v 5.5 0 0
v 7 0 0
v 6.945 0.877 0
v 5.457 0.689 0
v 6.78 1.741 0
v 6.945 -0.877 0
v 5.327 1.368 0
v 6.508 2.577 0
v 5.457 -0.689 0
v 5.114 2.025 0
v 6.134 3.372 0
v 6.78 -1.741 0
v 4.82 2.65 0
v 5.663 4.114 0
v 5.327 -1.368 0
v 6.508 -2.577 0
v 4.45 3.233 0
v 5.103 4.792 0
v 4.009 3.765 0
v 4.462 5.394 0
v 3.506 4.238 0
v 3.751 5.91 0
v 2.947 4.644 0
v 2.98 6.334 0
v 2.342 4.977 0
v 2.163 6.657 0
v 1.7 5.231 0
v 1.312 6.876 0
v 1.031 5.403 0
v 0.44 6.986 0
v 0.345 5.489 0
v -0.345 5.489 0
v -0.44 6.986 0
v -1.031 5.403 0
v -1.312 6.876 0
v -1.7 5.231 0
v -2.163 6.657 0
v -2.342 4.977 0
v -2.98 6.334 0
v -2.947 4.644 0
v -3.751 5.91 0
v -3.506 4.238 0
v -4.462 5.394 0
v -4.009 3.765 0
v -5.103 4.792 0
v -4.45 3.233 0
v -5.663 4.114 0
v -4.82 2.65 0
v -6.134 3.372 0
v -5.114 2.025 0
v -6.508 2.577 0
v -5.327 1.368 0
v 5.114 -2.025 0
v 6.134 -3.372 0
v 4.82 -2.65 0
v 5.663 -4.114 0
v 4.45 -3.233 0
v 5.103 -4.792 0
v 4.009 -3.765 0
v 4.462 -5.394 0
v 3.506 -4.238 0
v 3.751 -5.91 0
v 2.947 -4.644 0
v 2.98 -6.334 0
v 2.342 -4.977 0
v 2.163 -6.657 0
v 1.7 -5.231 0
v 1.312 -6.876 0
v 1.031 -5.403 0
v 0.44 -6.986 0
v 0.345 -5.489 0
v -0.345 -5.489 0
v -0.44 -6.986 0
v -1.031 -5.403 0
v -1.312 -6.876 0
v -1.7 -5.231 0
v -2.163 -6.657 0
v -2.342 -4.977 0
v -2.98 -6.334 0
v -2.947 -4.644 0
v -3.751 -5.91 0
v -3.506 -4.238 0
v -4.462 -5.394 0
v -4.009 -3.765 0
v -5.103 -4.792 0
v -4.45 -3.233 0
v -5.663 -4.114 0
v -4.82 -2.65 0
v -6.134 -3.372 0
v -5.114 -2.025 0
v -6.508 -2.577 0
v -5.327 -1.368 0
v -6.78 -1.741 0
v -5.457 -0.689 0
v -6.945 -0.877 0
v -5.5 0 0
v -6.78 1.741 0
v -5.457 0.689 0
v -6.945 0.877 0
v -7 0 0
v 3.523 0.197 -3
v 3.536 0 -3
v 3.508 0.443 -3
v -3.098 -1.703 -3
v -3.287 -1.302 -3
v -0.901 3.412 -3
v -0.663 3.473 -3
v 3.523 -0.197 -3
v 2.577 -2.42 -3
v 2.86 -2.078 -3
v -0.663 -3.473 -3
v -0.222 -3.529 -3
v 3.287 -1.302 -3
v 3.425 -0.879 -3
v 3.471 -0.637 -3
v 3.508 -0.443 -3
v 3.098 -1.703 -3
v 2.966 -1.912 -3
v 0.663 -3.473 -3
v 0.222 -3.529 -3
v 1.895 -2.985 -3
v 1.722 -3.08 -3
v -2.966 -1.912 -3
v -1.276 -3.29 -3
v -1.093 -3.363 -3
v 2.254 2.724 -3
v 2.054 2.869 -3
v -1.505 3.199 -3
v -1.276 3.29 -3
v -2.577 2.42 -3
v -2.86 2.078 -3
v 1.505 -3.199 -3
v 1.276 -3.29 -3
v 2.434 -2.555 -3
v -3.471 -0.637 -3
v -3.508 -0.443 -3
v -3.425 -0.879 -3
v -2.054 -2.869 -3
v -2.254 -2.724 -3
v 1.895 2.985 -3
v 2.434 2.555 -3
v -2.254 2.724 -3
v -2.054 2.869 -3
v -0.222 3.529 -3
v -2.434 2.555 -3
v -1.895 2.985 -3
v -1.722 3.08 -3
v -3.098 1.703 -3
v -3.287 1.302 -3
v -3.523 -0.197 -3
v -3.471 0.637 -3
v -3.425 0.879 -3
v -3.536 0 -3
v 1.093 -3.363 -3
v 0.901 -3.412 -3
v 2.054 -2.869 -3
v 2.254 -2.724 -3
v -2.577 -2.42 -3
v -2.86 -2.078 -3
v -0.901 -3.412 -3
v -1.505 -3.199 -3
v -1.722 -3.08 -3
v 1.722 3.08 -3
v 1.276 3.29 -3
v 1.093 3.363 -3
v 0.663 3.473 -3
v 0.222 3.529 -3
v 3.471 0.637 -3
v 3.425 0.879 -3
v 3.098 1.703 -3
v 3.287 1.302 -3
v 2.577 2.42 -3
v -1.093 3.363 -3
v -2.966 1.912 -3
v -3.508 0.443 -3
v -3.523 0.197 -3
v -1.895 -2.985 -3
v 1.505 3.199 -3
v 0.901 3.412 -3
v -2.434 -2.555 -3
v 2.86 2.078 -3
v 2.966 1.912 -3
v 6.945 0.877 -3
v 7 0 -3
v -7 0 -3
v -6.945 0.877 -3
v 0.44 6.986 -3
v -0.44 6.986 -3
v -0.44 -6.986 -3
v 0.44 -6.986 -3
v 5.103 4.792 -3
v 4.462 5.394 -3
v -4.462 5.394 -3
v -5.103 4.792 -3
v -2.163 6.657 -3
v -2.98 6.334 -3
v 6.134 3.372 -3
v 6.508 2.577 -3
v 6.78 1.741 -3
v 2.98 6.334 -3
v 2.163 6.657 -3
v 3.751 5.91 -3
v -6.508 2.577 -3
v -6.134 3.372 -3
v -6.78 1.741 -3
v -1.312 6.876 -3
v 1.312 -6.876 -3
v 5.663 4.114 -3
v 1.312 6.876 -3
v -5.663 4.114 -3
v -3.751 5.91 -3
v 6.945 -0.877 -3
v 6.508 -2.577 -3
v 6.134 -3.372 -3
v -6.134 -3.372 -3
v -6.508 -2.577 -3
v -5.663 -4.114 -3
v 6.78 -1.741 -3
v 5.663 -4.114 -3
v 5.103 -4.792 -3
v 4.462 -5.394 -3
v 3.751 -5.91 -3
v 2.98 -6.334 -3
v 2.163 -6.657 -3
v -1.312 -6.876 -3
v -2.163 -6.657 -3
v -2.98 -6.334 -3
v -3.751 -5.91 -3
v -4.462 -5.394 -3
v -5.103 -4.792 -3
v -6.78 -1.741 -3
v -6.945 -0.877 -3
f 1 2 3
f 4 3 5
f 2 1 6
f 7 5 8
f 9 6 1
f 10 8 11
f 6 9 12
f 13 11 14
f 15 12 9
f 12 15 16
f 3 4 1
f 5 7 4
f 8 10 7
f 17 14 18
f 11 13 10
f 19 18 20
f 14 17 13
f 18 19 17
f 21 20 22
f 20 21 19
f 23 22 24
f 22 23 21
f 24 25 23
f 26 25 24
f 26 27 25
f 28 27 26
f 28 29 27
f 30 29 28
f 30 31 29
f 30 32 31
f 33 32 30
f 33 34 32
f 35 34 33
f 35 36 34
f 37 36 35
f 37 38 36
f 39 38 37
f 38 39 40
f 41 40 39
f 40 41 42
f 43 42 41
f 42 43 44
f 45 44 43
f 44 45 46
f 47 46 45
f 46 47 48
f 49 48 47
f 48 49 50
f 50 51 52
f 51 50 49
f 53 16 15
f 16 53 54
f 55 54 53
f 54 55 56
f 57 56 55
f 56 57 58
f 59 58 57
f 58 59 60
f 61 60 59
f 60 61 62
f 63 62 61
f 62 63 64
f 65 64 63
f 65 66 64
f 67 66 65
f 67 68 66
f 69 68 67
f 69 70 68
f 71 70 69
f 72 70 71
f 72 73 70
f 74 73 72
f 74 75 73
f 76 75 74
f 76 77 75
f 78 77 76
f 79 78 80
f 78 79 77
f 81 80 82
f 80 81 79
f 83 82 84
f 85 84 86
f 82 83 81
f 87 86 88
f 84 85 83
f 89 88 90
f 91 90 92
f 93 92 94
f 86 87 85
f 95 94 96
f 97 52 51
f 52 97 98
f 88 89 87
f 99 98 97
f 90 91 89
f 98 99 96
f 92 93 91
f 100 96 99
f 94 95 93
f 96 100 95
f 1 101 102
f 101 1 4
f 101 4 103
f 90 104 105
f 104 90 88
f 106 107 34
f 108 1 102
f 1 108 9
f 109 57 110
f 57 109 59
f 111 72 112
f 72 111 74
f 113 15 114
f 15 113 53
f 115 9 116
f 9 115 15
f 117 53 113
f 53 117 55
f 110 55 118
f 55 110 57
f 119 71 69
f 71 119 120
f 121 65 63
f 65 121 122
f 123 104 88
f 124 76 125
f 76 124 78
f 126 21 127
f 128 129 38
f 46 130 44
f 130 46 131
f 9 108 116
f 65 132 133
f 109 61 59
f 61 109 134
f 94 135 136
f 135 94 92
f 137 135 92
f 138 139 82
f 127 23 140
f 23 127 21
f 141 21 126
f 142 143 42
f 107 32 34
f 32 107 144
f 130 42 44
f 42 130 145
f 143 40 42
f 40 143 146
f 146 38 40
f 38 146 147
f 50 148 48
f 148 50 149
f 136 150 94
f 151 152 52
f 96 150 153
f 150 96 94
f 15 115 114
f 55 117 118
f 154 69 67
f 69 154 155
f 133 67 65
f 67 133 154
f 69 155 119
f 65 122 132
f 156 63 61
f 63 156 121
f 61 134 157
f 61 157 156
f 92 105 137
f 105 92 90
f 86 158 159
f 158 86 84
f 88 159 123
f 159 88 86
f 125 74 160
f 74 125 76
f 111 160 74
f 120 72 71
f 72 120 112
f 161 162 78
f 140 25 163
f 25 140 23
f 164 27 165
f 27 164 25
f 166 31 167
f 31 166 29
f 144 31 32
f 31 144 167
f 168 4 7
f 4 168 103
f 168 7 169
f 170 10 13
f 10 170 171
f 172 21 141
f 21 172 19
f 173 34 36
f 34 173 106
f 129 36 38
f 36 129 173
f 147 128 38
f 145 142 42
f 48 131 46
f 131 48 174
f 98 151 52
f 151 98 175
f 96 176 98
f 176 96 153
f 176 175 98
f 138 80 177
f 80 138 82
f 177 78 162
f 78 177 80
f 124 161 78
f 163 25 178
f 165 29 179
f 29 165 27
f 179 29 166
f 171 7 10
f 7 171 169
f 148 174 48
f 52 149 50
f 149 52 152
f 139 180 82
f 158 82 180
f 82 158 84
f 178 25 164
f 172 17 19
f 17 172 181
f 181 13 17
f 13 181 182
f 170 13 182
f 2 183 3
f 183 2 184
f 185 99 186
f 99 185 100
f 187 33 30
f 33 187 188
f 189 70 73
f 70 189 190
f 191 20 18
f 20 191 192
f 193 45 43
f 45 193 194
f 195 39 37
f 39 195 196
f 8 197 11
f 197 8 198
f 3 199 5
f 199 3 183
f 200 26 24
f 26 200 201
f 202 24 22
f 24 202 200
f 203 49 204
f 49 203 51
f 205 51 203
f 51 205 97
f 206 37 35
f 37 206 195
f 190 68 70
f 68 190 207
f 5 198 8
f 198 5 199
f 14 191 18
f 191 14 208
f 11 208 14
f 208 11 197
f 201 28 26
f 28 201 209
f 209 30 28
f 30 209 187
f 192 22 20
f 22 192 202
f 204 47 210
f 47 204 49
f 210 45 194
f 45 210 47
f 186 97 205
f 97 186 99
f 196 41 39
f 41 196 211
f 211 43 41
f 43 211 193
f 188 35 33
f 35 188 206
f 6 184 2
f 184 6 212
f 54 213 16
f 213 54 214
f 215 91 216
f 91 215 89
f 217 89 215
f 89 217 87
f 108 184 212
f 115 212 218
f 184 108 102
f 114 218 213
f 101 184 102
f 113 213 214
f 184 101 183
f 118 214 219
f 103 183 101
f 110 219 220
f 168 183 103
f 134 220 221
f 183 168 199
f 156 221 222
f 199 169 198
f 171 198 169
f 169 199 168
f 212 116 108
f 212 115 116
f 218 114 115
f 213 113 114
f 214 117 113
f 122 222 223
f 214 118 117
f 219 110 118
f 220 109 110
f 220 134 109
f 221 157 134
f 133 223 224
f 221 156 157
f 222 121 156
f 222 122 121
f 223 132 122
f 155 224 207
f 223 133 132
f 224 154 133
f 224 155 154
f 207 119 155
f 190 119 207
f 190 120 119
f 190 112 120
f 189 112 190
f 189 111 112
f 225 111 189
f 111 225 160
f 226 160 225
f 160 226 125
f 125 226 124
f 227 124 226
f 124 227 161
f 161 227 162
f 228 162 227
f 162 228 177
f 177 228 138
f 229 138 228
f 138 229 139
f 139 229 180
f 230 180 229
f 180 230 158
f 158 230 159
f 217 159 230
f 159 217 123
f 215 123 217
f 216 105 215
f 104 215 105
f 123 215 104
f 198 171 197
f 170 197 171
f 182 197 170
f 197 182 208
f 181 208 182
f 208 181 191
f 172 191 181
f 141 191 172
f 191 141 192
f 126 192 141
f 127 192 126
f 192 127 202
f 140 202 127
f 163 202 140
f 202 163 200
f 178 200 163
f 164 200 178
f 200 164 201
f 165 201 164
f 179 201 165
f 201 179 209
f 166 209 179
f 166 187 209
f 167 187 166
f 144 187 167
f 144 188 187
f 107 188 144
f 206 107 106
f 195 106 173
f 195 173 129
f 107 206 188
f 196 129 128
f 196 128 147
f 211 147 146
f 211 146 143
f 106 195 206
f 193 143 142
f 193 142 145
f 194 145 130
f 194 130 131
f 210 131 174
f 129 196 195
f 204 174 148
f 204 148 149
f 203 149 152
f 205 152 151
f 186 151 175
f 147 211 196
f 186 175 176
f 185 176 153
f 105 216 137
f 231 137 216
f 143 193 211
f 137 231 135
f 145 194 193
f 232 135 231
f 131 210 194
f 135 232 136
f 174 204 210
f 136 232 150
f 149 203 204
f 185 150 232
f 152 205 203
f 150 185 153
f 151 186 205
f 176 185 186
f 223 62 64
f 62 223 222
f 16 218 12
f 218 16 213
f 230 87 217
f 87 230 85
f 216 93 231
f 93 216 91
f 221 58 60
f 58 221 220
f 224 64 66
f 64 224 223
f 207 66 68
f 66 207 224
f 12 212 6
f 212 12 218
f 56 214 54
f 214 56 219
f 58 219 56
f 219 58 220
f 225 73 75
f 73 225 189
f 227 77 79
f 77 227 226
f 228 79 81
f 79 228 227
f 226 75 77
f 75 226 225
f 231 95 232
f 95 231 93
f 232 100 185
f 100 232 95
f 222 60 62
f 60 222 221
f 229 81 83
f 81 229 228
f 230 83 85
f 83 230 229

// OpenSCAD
$fn = 50;


difference() {
	union() {
		translate(v = [0, 0, -3.0000000000]) {
			cylinder(h = 3, r = 7.0000000000);
		}
		cylinder(h = 0, r = 16.0000000000);
	}
	union() {
		translate(v = [0, 0, 0]) {
			rotate(a = [0, 0, 0]) {
				difference() {
					union() {
						#translate(v = [0, 0, -3.0000000000]) {
							cylinder(h = 3, r = 2.2500000000);
						}
						#translate(v = [0, 0, -4.2000000000]) {
							cylinder(h = 4.2000000000, r1 = 2.7500000000, r2 = 5.5000000000);
						}
						#translate(v = [0, 0, -3.0000000000]) {
							cylinder(h = 3, r = 2.7500000000);
						}
						#translate(v = [0, 0, -3.0000000000]) {
							cylinder(h = 3, r = 2.2500000000);
						}
					}
					union();
				}
			}
		}
	}
}
